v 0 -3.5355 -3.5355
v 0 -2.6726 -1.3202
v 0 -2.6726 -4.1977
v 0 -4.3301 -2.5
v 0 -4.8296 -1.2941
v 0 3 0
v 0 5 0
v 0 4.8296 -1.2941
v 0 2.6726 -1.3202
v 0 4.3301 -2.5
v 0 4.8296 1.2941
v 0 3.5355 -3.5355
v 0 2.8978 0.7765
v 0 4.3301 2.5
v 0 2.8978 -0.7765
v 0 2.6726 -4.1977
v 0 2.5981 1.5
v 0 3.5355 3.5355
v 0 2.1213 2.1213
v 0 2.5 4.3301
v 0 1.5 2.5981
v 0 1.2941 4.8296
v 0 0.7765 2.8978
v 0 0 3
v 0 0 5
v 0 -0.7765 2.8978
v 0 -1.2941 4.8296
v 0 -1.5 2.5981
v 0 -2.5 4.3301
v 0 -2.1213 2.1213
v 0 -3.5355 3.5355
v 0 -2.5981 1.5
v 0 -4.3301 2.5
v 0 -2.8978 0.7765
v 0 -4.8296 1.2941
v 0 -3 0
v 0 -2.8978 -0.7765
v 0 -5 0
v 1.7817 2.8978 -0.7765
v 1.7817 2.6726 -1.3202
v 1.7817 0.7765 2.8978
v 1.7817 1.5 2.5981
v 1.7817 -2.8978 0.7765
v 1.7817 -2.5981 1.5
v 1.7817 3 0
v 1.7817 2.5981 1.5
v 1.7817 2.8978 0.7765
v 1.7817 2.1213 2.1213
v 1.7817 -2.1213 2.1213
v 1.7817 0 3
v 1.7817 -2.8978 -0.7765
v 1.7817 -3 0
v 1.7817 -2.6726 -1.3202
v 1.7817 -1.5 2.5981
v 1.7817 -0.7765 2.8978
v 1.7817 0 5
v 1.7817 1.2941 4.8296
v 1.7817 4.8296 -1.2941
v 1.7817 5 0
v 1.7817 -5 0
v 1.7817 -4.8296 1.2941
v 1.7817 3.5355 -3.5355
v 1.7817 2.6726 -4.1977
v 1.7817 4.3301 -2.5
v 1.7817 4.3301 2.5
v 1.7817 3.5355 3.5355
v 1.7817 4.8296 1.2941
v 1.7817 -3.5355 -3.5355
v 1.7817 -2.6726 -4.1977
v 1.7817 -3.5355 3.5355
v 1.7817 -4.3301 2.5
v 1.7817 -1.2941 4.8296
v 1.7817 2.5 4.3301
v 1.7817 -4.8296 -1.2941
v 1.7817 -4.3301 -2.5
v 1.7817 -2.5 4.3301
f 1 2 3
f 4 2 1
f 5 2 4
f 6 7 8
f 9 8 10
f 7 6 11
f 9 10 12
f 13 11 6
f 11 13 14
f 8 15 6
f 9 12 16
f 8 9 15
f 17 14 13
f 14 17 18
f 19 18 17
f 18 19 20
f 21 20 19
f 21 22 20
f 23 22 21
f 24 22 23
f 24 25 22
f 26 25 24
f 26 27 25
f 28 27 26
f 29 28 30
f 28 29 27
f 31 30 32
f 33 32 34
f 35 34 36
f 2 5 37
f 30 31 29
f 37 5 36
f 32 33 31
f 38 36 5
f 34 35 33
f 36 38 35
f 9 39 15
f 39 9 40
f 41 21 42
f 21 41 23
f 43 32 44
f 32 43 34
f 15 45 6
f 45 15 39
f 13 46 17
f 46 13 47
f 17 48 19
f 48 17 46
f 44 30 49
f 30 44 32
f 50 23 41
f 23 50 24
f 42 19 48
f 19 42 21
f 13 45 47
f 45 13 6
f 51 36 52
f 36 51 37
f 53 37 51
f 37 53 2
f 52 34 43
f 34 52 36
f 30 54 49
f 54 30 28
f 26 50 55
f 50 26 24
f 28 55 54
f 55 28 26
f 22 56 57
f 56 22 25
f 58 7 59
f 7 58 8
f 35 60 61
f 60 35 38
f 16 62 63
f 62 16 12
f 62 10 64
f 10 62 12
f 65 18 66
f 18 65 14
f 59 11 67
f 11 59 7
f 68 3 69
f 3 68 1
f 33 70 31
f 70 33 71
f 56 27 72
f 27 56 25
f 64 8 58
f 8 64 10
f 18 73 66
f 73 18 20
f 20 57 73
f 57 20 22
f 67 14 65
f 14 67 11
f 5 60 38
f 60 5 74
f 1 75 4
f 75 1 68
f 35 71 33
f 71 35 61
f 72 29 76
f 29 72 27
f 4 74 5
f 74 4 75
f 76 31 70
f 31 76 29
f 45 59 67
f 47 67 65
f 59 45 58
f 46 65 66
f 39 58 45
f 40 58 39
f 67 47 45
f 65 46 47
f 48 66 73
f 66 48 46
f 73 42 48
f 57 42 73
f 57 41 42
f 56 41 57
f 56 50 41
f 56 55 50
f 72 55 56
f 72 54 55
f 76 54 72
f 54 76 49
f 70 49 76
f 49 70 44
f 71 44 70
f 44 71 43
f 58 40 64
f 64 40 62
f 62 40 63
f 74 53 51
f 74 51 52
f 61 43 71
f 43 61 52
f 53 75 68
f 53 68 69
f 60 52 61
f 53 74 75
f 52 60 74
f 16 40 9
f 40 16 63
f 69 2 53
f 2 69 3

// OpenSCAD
// file: ../build_environments.scad
// build_environments.scad: modules to build level sections
//

module pool(diameter=10.0, wall_height=2.0, step_width=3.0, connections=[])
{
    difference() {
        union() {
        difference() {
            cylinder(h=0.5,r1=diameter+step_width,r2=diameter+step_width,$fn=48);
            translate([0,0,-0.1])
                cylinder(h=0.7,r1=diameter,r2=diameter,$fn=48);
        }
        difference() {
            cylinder(h=wall_height,r1=diameter+step_width+1.0,r2=diameter+step_width+1.0,$fn=48);
            translate([0,0,-0.1])
                cylinder(h=wall_height+0.2,r1=diameter+step_width,r2=diameter+step_width,$fn=48);
        }
        }
    
        for (c = connections)
        {
            rotate([0,90,0]) {
                angle = atan2(c[1],c[0]);
                rotate([-angle,0,0]) {
                    cylinder(h=diameter+5.0,r1=c[2],r2=c[2],$fn=48);
                }
            }
        }
    }
}

module straight(length=10.0, width=2.0, dy1=0.0, dy2=0.0, dz=0.0)
{
    dims = [0, 0, 0, 0, 0, (dz/length)];
    matrix = [
        [ 1, dims[0], dims[1], 0 ],
        [ dims[2], 1, dims[4], 0 ],
        [ dims[5], dims[3], 1, 0 ],
        [ 0, 0, 0, 1 ]
    ];
    multmatrix(matrix)
    difference() {
        translate([dy1,0,0])
        union() {
            rotate([0,90,0]) {
                difference() {
                    cylinder(h=(length-dy1-dy2),r1=width+1.0,r2=width+1.0,$fn=24);
                    translate([0,0,-0.1])
                        cylinder(h=(length-dy1-dy2+0.2),r1=width,r2=width,$fn=24);
                }
                difference() {
                    cylinder(h=1.0,r1=width+2.0,r2=width+2.0,$fn=24);
                    translate([0,0,-0.1])
                        cylinder(h=1.2,r1=width,r2=width,$fn=24);
                }
                translate([0,0,(length-dy1-dy2)-1.0]) {
                    difference() {
                        cylinder(h=1.0,r1=width+2.0,r2=width+2.0,$fn=24);
                        translate([0,0,-0.1])
                            cylinder(h=1.2,r1=width,r2=width,$fn=24);
                    }
                }
            }
        }
        translate([0,0,-(2*width+4.0)/2])
            cube([3*length,3*length,2*width+4.0],center=true);
    }
}

module curve(p0=[0,0], center=[0,0], dir=1, angle=0.0, width=2.0)
{
    radius = sqrt((p0[0]-center[0])*(p0[0]-center[0]) + (p0[1]-center[1])*(p0[1]-center[1]));
    if (dir == 0) {
        difference() {
            rotate([0,0,-90])
            difference() {
                rotate_extrude(angle = angle, convexity = 10, $fn=32)
                    translate([radius, 0, 0])
                        circle(r = width+1.0,$fn=24);
                rotate([0,0,-1.0])
                    rotate_extrude(angle = angle+2.0, convexity = 10, $fn=32)
                        translate([radius, 0, 0])
                            circle(r = width,$fn=24);
            }
            translate([0,0,-(2*width+4.0)/2])
                cube([5*radius,5*radius,2*width+4.0],center=true);
        }
    }
    else {
        difference() {
            rotate([0,0,90])
            difference() {
                rotate_extrude(angle = -angle, convexity = 10, $fn=32)
                    translate([radius, 0, 0])
                        circle(r = width+1.0,$fn=24);
                rotate([0,0,1.0])
                    rotate_extrude(angle = -angle-2.0, convexity = 10, $fn=32)
                        translate([radius, 0, 0])
                            circle(r = width,$fn=24);
            }
            translate([0,0,-(2*width+4.0)/2])
                cube([5*radius,5*radius,2*width+4.0],center=true);
        }
    }

}

// test pool
//pool(diameter=12.0000, wall_height=3.0000, step_width=3.0000, connections=[[0.0000,-26.0000,2.0000], [23.6074,0.0000,2.0000]]);

// test straight, slope
//straight(length=26.0000, width=2.0000, dy1=11.8322, dy2=6.7082, dz=0.0000);
//straight(length=29.1549, width=12.0000, dy1=0.0000, dy2=0.0000, dz=-15.0000);

// test curve
//curve(p0=[23.6074, 0.0000], center=[23.6074, 5.0000], dir=0, angle=60.1011, width=2.0000);
//curve(p0=[33.6426, 12.4219], center=[37.9771, 9.9295], dir=1, angle=120.4627, width=2.0000);
// main file
use <../build_environments.scad>;
straight(length=1.7817, width=3.0000, dy1=0.0000, dy2=0.0000, dz=0.0000);
